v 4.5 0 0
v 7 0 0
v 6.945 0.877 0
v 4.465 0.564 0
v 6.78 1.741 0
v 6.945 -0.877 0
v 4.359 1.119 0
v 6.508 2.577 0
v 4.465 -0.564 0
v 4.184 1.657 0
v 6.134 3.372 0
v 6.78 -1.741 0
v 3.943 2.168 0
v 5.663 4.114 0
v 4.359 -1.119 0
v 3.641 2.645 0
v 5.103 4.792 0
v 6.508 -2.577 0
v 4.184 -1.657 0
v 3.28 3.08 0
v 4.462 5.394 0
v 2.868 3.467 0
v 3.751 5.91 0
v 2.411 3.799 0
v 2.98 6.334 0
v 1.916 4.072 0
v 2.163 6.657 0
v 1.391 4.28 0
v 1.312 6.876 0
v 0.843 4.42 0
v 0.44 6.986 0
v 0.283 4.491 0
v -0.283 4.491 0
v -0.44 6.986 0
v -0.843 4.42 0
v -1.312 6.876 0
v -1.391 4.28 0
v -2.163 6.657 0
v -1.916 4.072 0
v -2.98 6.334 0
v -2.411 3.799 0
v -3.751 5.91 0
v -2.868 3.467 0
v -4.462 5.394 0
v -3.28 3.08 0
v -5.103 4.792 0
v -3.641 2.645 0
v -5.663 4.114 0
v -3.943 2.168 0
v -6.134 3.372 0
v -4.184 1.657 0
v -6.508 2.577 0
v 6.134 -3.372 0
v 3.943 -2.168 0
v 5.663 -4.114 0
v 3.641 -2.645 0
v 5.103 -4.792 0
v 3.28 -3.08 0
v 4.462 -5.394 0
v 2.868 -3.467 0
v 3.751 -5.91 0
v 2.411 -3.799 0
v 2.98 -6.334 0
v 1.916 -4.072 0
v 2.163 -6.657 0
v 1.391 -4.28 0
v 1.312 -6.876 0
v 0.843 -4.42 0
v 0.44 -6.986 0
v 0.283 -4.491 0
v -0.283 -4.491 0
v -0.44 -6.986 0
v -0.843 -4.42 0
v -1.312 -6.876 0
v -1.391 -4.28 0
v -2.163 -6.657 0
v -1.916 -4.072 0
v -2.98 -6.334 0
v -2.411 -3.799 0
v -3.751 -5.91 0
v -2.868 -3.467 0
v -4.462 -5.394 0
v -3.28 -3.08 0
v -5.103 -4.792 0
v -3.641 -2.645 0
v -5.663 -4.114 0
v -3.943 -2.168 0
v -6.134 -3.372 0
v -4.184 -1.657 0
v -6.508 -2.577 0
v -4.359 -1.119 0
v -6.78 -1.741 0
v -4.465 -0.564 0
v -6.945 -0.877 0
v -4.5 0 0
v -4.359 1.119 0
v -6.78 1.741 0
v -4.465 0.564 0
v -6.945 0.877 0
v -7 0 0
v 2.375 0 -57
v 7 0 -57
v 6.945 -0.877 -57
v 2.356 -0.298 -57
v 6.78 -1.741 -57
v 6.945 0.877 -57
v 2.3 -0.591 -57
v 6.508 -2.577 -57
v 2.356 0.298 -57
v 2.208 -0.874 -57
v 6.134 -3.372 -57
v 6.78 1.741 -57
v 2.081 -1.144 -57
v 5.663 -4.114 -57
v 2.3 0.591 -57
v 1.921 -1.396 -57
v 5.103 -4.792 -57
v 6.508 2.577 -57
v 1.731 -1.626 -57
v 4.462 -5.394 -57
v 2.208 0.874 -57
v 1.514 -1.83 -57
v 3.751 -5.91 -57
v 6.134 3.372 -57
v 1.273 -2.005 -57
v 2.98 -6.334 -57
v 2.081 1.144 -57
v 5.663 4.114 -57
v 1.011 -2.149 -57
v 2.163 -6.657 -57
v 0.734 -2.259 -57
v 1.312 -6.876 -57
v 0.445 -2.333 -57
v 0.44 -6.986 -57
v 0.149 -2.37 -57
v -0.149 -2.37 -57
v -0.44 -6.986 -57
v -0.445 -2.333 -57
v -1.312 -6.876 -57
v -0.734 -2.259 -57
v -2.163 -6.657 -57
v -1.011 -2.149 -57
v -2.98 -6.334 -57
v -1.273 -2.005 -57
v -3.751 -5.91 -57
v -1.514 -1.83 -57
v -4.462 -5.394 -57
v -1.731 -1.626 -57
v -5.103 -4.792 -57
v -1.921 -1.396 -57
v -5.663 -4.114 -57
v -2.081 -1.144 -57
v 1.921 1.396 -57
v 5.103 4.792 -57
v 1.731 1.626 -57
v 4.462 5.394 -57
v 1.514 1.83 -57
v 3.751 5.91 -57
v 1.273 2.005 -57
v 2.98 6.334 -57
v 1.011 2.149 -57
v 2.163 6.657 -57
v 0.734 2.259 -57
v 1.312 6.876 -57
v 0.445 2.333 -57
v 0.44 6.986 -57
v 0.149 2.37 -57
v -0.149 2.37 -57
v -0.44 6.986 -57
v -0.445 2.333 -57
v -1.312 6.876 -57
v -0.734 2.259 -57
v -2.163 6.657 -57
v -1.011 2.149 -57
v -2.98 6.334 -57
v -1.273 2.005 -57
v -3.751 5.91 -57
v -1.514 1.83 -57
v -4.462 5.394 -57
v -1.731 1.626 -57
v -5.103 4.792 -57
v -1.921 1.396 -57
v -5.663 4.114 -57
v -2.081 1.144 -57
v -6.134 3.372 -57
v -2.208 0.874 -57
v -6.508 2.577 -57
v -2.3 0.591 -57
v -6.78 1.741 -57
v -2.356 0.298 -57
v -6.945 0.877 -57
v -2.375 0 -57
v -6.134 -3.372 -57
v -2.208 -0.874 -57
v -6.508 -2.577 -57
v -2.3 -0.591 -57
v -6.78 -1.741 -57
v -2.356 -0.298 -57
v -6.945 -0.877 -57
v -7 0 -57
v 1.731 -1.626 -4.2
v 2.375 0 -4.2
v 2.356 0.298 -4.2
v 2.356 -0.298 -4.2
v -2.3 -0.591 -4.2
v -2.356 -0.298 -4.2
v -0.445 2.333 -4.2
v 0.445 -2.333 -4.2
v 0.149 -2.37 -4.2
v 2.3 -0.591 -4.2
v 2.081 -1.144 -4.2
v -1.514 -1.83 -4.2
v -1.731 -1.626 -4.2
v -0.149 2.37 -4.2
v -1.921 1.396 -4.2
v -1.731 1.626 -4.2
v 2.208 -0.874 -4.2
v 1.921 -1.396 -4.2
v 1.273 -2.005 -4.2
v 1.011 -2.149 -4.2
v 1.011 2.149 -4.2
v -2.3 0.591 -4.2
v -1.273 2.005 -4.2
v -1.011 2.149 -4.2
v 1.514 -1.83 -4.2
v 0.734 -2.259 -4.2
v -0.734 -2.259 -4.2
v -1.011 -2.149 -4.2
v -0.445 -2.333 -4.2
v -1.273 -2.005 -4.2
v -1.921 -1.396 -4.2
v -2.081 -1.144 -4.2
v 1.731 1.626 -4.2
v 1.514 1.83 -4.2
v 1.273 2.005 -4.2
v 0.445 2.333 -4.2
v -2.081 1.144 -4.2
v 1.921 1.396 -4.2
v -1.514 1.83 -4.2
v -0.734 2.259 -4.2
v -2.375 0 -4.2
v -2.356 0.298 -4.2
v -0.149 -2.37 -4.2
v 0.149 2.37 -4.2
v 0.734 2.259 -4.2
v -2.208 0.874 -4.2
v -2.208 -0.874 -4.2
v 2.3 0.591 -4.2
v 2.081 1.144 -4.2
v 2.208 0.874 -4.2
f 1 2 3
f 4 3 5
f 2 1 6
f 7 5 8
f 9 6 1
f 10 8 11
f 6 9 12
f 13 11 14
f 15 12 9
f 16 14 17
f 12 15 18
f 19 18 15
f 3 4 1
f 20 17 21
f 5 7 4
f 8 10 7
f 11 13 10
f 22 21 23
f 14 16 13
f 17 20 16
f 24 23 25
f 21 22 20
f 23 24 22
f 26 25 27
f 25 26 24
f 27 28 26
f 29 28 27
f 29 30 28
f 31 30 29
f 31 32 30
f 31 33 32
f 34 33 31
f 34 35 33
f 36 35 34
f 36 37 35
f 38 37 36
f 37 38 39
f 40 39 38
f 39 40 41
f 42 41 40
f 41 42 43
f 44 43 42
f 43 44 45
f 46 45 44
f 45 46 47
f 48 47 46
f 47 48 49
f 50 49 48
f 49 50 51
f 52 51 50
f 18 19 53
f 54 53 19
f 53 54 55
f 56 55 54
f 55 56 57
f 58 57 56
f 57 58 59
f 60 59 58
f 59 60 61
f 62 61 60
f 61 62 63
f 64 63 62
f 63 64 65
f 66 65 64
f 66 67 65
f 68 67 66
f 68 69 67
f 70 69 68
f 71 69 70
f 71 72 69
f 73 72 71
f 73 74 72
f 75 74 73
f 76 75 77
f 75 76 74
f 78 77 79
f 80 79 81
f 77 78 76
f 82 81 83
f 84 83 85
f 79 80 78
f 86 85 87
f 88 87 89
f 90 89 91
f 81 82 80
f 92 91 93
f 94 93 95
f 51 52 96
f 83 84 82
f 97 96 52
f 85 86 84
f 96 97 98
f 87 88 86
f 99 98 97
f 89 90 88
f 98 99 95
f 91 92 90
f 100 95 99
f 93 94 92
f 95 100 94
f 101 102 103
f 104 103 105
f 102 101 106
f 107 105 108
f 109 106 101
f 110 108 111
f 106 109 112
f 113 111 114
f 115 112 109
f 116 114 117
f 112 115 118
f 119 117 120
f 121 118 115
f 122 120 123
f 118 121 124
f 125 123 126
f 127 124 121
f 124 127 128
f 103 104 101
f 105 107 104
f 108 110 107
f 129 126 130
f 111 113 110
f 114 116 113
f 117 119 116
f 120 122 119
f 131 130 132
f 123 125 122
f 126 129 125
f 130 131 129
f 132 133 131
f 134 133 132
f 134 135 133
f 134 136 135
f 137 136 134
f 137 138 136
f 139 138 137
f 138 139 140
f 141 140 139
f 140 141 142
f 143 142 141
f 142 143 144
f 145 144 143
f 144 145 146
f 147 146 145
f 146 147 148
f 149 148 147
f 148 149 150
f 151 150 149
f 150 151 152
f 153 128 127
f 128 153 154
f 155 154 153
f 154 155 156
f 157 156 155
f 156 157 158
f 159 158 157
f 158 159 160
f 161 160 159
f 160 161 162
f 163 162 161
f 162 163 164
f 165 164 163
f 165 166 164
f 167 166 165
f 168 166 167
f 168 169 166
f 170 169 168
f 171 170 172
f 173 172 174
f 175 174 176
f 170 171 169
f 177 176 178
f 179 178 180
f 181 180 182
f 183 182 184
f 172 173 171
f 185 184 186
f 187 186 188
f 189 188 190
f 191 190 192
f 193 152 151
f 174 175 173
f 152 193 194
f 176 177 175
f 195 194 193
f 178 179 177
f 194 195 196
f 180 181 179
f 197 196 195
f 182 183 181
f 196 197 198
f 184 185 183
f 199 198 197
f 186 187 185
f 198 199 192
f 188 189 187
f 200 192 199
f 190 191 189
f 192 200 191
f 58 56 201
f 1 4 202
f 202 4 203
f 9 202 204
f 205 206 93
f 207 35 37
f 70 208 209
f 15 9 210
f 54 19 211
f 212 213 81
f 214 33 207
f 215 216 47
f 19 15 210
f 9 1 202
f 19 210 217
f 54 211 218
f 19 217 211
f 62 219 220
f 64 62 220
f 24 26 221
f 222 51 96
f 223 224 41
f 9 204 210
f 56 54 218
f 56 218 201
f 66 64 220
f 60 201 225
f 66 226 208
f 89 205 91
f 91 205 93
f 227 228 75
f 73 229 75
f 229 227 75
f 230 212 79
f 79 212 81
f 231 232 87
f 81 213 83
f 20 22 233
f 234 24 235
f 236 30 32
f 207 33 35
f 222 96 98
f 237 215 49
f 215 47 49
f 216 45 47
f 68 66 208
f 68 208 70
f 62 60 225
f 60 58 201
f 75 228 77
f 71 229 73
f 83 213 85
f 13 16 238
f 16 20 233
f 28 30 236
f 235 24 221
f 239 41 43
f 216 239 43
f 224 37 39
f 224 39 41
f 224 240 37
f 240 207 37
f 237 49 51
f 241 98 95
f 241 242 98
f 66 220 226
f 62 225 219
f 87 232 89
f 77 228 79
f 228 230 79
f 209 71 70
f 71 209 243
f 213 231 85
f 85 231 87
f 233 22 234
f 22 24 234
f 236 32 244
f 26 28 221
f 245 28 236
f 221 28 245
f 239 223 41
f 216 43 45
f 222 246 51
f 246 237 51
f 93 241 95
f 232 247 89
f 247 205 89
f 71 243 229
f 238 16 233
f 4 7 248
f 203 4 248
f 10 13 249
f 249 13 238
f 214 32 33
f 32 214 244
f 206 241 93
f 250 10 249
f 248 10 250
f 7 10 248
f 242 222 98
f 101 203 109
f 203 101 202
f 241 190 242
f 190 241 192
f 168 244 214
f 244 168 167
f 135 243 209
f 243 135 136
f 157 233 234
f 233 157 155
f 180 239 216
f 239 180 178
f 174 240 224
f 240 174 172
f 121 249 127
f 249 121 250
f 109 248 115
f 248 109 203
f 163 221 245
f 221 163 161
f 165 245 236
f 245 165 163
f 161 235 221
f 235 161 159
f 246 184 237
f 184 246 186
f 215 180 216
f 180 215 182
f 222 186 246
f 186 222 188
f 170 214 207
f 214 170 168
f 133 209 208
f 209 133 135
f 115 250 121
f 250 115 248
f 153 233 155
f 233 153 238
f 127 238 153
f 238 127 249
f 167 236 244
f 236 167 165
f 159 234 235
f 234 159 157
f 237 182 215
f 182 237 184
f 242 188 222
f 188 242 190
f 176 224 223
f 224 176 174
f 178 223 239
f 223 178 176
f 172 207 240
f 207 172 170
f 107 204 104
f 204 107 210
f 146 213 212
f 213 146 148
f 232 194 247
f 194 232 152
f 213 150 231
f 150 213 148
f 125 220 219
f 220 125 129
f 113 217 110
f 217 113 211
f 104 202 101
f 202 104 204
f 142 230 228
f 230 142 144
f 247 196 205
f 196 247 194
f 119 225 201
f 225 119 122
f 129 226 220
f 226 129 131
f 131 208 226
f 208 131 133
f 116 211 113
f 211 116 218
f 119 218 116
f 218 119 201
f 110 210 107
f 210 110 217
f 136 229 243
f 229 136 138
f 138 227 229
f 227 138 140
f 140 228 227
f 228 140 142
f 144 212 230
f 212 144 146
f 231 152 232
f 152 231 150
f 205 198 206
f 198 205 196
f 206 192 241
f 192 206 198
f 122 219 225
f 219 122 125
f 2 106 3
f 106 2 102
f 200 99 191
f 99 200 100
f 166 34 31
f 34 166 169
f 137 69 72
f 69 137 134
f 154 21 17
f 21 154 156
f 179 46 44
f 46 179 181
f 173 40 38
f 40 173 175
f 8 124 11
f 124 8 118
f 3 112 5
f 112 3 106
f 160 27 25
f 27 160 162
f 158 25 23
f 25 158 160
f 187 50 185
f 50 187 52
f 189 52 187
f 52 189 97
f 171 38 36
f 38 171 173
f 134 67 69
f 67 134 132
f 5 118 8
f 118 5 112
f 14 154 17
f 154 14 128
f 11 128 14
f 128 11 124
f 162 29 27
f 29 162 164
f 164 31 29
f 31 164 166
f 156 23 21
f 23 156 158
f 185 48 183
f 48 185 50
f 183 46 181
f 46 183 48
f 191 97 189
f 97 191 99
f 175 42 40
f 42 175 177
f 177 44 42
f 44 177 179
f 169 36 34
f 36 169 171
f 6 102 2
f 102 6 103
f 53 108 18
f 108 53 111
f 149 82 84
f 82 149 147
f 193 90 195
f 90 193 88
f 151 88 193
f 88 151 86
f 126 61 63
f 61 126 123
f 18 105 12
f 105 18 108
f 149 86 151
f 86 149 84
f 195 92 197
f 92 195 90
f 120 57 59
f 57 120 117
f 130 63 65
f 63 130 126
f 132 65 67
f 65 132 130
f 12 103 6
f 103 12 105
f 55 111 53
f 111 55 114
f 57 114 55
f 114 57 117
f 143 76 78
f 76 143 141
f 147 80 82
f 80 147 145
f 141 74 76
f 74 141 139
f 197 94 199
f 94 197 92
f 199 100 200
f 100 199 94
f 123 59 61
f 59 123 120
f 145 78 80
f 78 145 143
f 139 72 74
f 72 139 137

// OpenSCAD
$fn = 50;


difference() {
	union() {
		translate(v = [0, 0, -57.0000000000]) {
			cylinder(h = 57, r = 7.0000000000);
		}
	}
	union() {
		translate(v = [0, 0, 0]) {
			rotate(a = [0, 0, 0]) {
				difference() {
					union() {
						#translate(v = [0, 0, -57.0000000000]) {
							cylinder(h = 57, r = 2.2500000000);
						}
						#translate(v = [0, 0, -4.2000000000]) {
							cylinder(h = 4.2000000000, r1 = 2.3750000000, r2 = 4.5000000000);
						}
						#translate(v = [0, 0, -57.0000000000]) {
							cylinder(h = 57, r = 2.3750000000);
						}
						#translate(v = [0, 0, -57.0000000000]) {
							cylinder(h = 57, r = 2.2500000000);
						}
					}
					union();
				}
			}
		}
	}
}
